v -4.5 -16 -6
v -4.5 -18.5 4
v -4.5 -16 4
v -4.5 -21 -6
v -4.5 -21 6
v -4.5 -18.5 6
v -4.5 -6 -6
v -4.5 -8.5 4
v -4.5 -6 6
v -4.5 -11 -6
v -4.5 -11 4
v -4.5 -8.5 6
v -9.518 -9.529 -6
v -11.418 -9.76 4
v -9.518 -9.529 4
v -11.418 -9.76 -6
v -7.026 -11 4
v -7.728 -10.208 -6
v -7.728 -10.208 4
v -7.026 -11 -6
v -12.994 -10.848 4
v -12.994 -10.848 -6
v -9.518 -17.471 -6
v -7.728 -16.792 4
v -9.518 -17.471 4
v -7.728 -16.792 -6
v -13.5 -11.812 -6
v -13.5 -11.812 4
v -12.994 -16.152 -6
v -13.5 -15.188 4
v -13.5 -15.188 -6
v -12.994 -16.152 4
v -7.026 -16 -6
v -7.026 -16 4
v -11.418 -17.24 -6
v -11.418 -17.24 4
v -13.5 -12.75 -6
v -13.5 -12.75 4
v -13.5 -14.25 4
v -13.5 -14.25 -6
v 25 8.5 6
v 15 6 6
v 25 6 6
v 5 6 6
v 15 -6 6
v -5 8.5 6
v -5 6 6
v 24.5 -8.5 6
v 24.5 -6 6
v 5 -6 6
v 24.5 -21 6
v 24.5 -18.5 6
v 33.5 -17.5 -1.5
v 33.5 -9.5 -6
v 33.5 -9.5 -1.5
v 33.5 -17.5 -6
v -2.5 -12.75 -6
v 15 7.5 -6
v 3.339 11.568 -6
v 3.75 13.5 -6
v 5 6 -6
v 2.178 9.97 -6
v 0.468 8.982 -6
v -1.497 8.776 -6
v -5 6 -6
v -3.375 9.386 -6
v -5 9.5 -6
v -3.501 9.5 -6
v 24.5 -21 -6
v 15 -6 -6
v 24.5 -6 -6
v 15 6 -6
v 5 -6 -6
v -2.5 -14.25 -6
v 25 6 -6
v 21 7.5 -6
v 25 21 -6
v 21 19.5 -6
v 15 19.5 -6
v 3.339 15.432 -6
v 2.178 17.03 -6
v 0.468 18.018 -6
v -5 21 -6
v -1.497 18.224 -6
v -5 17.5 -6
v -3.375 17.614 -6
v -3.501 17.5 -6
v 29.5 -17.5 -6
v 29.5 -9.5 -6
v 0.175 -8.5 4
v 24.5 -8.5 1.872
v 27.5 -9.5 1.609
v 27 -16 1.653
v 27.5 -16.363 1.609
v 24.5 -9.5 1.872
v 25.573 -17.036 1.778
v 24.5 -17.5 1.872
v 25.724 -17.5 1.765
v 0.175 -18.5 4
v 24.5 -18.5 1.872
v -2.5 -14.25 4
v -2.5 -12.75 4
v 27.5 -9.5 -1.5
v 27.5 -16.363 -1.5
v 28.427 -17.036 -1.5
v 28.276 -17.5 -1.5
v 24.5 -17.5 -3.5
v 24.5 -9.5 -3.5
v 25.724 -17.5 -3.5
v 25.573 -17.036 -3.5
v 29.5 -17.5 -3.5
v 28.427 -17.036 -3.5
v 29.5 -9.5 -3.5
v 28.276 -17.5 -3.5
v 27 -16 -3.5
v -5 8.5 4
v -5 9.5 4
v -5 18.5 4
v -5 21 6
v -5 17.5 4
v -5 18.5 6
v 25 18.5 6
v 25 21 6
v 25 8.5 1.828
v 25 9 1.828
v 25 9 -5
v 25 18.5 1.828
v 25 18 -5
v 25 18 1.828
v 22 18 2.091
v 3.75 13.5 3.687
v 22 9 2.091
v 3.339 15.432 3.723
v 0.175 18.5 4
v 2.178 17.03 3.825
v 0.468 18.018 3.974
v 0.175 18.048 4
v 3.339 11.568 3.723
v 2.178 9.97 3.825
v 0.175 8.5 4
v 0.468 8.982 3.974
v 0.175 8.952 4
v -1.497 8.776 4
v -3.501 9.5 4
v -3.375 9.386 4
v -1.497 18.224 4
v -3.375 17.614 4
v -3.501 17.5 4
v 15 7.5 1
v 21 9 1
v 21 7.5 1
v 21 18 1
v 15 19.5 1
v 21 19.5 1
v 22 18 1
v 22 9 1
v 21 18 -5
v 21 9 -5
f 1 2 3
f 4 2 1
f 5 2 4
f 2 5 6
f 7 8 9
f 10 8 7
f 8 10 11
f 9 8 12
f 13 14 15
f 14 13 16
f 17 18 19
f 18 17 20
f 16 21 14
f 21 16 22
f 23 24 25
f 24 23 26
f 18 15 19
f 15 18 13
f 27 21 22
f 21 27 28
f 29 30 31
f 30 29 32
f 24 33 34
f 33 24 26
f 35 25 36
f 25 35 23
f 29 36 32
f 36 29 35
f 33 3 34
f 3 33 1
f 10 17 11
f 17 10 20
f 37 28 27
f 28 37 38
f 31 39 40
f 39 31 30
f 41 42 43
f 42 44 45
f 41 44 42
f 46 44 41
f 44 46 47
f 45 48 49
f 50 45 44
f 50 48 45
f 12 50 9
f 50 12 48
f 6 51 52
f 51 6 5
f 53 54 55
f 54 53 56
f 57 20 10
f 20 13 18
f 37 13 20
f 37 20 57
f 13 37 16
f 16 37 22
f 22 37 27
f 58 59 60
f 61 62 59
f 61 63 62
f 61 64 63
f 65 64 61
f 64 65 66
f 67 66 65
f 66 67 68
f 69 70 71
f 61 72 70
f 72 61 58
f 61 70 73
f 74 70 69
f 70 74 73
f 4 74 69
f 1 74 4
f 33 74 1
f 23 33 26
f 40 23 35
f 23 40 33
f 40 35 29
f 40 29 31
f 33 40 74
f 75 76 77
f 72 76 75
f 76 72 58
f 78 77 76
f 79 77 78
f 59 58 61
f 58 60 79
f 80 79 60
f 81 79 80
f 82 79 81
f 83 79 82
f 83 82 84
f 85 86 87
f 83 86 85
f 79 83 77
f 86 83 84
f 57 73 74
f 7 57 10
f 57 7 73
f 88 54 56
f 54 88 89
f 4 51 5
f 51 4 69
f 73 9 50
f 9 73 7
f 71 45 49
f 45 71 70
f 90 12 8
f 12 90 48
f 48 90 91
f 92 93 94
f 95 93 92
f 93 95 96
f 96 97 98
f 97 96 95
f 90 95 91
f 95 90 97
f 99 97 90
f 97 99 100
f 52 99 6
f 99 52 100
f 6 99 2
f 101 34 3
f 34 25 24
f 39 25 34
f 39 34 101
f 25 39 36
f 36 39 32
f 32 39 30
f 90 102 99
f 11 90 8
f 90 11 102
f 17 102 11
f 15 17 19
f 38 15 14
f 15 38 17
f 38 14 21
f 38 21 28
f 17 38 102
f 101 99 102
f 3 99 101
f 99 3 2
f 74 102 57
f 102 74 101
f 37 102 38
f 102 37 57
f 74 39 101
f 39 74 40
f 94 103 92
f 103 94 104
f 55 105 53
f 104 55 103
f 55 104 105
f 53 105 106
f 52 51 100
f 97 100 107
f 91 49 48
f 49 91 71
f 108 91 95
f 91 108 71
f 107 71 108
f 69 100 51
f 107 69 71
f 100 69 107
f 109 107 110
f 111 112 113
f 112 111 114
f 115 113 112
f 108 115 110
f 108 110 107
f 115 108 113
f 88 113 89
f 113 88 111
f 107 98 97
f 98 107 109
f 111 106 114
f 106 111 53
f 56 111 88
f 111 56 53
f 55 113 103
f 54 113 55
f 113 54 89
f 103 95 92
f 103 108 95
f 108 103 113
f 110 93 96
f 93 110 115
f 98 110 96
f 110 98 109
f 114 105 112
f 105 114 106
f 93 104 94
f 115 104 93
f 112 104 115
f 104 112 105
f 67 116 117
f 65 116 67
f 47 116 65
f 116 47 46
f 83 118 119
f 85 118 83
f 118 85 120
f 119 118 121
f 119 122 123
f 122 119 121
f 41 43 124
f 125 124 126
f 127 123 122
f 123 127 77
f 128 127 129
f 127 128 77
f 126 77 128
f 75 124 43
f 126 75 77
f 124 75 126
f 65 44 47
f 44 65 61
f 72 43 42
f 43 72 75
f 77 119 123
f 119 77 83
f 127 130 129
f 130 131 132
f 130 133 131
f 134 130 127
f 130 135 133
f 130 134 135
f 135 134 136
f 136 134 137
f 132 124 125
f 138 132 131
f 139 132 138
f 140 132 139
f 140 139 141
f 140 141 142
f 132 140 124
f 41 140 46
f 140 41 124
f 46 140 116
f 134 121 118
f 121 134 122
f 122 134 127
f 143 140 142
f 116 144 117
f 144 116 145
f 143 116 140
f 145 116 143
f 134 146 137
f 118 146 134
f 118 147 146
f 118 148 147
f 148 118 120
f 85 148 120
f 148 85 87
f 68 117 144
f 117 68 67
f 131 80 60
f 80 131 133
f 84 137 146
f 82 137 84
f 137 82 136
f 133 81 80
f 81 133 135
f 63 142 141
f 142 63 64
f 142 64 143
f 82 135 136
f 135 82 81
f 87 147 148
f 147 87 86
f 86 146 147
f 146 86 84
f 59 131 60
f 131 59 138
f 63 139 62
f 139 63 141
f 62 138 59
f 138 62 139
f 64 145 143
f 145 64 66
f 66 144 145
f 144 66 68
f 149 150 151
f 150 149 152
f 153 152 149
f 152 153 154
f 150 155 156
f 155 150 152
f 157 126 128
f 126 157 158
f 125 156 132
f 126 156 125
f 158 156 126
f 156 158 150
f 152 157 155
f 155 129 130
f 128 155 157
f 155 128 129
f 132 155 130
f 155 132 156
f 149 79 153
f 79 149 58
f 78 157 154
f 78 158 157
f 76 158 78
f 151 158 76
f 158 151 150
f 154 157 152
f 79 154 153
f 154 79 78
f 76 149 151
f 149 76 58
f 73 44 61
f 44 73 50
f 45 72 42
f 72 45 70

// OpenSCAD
// Trackmaster to Trackmaster 2 converter track
// Copyright (C) 2016 Andrew McCollum
// github.com/5ilver/ silver@silvermag.net


// This program is free software; you can redistribute it and/or modify
// it under the terms of the GNU General Public License as published by
// the Free Software Foundation; either version 3 of the License, or
// (at your option) any later version.

// This program is distributed in the hope that it will be useful,
// but WITHOUT ANY WARRANTY; without even the implied warranty of
// MERCHANTABILITY or FITNESS FOR A PARTICULAR PURPOSE.  See the
// GNU General Public License for more details.

// You should have received a copy of the GNU General Public License
// along with this program; if not, write to the Free Software Foundation,
// Inc., 51 Franklin Street, Fifth Floor, Boston, MA 02110-1301  USA

translate([10,0,0]) cube([10,12,12],true);

difference(){
   //outy track
    translate([10,-13.5,0]) cube([47,15,12],true);
   //tracktop
   rotate([0,5,0]) translate([10,-13.5,9]) cube([51,10,10],true);
   translate([10,-13.5,9]) cube([51,10,10],true);
    
    //round outy
    translate([-10,-13.5,0]) difference(){
        cube([11,20,20],true);
        cylinder(50,4,4,true);
        translate([10,0,0])     cube([20,5,50],true);
    }
    translate([-10,-13.5,0])   cube([15,1.5,50],true);
    
    //square outy
    
    translate([32,-13.5,3.5]) cube([9,16,10],true);
    translate([27,-13.5,-8.5]) cube([5,16,10],true);
    translate([30,-20,0]) cube([11,5,20],true);
    translate([30,-7,0]) cube([11,5,20],true);
    translate([27,-17.5,0])   rotate(90,90,0) cylinder(20,1.5,1.5,true);

}

translate([0,13.5,0]) difference(){
 //inny track  
    translate([10,0,0]) cube([30,15,12],true);
 //track top
    rotate([0,5,0])  translate([10,0,9]) cube([41,10,10],true);
    translate([10,0,9]) cube([41,10,10],true);
    
//round inny
    translate([-10,0,0])     cube([20,8,20],true);
    translate([-1,0,0])    cylinder(50,4.75,4.75,true);
 

    
   //square inny 
    translate([25,0,-2]) cube([10,9,6],true);
    translate([24,0,0]) cube([4,9,8],true);
    translate([18,0,-5]) cube([6,12,12],true);
}
